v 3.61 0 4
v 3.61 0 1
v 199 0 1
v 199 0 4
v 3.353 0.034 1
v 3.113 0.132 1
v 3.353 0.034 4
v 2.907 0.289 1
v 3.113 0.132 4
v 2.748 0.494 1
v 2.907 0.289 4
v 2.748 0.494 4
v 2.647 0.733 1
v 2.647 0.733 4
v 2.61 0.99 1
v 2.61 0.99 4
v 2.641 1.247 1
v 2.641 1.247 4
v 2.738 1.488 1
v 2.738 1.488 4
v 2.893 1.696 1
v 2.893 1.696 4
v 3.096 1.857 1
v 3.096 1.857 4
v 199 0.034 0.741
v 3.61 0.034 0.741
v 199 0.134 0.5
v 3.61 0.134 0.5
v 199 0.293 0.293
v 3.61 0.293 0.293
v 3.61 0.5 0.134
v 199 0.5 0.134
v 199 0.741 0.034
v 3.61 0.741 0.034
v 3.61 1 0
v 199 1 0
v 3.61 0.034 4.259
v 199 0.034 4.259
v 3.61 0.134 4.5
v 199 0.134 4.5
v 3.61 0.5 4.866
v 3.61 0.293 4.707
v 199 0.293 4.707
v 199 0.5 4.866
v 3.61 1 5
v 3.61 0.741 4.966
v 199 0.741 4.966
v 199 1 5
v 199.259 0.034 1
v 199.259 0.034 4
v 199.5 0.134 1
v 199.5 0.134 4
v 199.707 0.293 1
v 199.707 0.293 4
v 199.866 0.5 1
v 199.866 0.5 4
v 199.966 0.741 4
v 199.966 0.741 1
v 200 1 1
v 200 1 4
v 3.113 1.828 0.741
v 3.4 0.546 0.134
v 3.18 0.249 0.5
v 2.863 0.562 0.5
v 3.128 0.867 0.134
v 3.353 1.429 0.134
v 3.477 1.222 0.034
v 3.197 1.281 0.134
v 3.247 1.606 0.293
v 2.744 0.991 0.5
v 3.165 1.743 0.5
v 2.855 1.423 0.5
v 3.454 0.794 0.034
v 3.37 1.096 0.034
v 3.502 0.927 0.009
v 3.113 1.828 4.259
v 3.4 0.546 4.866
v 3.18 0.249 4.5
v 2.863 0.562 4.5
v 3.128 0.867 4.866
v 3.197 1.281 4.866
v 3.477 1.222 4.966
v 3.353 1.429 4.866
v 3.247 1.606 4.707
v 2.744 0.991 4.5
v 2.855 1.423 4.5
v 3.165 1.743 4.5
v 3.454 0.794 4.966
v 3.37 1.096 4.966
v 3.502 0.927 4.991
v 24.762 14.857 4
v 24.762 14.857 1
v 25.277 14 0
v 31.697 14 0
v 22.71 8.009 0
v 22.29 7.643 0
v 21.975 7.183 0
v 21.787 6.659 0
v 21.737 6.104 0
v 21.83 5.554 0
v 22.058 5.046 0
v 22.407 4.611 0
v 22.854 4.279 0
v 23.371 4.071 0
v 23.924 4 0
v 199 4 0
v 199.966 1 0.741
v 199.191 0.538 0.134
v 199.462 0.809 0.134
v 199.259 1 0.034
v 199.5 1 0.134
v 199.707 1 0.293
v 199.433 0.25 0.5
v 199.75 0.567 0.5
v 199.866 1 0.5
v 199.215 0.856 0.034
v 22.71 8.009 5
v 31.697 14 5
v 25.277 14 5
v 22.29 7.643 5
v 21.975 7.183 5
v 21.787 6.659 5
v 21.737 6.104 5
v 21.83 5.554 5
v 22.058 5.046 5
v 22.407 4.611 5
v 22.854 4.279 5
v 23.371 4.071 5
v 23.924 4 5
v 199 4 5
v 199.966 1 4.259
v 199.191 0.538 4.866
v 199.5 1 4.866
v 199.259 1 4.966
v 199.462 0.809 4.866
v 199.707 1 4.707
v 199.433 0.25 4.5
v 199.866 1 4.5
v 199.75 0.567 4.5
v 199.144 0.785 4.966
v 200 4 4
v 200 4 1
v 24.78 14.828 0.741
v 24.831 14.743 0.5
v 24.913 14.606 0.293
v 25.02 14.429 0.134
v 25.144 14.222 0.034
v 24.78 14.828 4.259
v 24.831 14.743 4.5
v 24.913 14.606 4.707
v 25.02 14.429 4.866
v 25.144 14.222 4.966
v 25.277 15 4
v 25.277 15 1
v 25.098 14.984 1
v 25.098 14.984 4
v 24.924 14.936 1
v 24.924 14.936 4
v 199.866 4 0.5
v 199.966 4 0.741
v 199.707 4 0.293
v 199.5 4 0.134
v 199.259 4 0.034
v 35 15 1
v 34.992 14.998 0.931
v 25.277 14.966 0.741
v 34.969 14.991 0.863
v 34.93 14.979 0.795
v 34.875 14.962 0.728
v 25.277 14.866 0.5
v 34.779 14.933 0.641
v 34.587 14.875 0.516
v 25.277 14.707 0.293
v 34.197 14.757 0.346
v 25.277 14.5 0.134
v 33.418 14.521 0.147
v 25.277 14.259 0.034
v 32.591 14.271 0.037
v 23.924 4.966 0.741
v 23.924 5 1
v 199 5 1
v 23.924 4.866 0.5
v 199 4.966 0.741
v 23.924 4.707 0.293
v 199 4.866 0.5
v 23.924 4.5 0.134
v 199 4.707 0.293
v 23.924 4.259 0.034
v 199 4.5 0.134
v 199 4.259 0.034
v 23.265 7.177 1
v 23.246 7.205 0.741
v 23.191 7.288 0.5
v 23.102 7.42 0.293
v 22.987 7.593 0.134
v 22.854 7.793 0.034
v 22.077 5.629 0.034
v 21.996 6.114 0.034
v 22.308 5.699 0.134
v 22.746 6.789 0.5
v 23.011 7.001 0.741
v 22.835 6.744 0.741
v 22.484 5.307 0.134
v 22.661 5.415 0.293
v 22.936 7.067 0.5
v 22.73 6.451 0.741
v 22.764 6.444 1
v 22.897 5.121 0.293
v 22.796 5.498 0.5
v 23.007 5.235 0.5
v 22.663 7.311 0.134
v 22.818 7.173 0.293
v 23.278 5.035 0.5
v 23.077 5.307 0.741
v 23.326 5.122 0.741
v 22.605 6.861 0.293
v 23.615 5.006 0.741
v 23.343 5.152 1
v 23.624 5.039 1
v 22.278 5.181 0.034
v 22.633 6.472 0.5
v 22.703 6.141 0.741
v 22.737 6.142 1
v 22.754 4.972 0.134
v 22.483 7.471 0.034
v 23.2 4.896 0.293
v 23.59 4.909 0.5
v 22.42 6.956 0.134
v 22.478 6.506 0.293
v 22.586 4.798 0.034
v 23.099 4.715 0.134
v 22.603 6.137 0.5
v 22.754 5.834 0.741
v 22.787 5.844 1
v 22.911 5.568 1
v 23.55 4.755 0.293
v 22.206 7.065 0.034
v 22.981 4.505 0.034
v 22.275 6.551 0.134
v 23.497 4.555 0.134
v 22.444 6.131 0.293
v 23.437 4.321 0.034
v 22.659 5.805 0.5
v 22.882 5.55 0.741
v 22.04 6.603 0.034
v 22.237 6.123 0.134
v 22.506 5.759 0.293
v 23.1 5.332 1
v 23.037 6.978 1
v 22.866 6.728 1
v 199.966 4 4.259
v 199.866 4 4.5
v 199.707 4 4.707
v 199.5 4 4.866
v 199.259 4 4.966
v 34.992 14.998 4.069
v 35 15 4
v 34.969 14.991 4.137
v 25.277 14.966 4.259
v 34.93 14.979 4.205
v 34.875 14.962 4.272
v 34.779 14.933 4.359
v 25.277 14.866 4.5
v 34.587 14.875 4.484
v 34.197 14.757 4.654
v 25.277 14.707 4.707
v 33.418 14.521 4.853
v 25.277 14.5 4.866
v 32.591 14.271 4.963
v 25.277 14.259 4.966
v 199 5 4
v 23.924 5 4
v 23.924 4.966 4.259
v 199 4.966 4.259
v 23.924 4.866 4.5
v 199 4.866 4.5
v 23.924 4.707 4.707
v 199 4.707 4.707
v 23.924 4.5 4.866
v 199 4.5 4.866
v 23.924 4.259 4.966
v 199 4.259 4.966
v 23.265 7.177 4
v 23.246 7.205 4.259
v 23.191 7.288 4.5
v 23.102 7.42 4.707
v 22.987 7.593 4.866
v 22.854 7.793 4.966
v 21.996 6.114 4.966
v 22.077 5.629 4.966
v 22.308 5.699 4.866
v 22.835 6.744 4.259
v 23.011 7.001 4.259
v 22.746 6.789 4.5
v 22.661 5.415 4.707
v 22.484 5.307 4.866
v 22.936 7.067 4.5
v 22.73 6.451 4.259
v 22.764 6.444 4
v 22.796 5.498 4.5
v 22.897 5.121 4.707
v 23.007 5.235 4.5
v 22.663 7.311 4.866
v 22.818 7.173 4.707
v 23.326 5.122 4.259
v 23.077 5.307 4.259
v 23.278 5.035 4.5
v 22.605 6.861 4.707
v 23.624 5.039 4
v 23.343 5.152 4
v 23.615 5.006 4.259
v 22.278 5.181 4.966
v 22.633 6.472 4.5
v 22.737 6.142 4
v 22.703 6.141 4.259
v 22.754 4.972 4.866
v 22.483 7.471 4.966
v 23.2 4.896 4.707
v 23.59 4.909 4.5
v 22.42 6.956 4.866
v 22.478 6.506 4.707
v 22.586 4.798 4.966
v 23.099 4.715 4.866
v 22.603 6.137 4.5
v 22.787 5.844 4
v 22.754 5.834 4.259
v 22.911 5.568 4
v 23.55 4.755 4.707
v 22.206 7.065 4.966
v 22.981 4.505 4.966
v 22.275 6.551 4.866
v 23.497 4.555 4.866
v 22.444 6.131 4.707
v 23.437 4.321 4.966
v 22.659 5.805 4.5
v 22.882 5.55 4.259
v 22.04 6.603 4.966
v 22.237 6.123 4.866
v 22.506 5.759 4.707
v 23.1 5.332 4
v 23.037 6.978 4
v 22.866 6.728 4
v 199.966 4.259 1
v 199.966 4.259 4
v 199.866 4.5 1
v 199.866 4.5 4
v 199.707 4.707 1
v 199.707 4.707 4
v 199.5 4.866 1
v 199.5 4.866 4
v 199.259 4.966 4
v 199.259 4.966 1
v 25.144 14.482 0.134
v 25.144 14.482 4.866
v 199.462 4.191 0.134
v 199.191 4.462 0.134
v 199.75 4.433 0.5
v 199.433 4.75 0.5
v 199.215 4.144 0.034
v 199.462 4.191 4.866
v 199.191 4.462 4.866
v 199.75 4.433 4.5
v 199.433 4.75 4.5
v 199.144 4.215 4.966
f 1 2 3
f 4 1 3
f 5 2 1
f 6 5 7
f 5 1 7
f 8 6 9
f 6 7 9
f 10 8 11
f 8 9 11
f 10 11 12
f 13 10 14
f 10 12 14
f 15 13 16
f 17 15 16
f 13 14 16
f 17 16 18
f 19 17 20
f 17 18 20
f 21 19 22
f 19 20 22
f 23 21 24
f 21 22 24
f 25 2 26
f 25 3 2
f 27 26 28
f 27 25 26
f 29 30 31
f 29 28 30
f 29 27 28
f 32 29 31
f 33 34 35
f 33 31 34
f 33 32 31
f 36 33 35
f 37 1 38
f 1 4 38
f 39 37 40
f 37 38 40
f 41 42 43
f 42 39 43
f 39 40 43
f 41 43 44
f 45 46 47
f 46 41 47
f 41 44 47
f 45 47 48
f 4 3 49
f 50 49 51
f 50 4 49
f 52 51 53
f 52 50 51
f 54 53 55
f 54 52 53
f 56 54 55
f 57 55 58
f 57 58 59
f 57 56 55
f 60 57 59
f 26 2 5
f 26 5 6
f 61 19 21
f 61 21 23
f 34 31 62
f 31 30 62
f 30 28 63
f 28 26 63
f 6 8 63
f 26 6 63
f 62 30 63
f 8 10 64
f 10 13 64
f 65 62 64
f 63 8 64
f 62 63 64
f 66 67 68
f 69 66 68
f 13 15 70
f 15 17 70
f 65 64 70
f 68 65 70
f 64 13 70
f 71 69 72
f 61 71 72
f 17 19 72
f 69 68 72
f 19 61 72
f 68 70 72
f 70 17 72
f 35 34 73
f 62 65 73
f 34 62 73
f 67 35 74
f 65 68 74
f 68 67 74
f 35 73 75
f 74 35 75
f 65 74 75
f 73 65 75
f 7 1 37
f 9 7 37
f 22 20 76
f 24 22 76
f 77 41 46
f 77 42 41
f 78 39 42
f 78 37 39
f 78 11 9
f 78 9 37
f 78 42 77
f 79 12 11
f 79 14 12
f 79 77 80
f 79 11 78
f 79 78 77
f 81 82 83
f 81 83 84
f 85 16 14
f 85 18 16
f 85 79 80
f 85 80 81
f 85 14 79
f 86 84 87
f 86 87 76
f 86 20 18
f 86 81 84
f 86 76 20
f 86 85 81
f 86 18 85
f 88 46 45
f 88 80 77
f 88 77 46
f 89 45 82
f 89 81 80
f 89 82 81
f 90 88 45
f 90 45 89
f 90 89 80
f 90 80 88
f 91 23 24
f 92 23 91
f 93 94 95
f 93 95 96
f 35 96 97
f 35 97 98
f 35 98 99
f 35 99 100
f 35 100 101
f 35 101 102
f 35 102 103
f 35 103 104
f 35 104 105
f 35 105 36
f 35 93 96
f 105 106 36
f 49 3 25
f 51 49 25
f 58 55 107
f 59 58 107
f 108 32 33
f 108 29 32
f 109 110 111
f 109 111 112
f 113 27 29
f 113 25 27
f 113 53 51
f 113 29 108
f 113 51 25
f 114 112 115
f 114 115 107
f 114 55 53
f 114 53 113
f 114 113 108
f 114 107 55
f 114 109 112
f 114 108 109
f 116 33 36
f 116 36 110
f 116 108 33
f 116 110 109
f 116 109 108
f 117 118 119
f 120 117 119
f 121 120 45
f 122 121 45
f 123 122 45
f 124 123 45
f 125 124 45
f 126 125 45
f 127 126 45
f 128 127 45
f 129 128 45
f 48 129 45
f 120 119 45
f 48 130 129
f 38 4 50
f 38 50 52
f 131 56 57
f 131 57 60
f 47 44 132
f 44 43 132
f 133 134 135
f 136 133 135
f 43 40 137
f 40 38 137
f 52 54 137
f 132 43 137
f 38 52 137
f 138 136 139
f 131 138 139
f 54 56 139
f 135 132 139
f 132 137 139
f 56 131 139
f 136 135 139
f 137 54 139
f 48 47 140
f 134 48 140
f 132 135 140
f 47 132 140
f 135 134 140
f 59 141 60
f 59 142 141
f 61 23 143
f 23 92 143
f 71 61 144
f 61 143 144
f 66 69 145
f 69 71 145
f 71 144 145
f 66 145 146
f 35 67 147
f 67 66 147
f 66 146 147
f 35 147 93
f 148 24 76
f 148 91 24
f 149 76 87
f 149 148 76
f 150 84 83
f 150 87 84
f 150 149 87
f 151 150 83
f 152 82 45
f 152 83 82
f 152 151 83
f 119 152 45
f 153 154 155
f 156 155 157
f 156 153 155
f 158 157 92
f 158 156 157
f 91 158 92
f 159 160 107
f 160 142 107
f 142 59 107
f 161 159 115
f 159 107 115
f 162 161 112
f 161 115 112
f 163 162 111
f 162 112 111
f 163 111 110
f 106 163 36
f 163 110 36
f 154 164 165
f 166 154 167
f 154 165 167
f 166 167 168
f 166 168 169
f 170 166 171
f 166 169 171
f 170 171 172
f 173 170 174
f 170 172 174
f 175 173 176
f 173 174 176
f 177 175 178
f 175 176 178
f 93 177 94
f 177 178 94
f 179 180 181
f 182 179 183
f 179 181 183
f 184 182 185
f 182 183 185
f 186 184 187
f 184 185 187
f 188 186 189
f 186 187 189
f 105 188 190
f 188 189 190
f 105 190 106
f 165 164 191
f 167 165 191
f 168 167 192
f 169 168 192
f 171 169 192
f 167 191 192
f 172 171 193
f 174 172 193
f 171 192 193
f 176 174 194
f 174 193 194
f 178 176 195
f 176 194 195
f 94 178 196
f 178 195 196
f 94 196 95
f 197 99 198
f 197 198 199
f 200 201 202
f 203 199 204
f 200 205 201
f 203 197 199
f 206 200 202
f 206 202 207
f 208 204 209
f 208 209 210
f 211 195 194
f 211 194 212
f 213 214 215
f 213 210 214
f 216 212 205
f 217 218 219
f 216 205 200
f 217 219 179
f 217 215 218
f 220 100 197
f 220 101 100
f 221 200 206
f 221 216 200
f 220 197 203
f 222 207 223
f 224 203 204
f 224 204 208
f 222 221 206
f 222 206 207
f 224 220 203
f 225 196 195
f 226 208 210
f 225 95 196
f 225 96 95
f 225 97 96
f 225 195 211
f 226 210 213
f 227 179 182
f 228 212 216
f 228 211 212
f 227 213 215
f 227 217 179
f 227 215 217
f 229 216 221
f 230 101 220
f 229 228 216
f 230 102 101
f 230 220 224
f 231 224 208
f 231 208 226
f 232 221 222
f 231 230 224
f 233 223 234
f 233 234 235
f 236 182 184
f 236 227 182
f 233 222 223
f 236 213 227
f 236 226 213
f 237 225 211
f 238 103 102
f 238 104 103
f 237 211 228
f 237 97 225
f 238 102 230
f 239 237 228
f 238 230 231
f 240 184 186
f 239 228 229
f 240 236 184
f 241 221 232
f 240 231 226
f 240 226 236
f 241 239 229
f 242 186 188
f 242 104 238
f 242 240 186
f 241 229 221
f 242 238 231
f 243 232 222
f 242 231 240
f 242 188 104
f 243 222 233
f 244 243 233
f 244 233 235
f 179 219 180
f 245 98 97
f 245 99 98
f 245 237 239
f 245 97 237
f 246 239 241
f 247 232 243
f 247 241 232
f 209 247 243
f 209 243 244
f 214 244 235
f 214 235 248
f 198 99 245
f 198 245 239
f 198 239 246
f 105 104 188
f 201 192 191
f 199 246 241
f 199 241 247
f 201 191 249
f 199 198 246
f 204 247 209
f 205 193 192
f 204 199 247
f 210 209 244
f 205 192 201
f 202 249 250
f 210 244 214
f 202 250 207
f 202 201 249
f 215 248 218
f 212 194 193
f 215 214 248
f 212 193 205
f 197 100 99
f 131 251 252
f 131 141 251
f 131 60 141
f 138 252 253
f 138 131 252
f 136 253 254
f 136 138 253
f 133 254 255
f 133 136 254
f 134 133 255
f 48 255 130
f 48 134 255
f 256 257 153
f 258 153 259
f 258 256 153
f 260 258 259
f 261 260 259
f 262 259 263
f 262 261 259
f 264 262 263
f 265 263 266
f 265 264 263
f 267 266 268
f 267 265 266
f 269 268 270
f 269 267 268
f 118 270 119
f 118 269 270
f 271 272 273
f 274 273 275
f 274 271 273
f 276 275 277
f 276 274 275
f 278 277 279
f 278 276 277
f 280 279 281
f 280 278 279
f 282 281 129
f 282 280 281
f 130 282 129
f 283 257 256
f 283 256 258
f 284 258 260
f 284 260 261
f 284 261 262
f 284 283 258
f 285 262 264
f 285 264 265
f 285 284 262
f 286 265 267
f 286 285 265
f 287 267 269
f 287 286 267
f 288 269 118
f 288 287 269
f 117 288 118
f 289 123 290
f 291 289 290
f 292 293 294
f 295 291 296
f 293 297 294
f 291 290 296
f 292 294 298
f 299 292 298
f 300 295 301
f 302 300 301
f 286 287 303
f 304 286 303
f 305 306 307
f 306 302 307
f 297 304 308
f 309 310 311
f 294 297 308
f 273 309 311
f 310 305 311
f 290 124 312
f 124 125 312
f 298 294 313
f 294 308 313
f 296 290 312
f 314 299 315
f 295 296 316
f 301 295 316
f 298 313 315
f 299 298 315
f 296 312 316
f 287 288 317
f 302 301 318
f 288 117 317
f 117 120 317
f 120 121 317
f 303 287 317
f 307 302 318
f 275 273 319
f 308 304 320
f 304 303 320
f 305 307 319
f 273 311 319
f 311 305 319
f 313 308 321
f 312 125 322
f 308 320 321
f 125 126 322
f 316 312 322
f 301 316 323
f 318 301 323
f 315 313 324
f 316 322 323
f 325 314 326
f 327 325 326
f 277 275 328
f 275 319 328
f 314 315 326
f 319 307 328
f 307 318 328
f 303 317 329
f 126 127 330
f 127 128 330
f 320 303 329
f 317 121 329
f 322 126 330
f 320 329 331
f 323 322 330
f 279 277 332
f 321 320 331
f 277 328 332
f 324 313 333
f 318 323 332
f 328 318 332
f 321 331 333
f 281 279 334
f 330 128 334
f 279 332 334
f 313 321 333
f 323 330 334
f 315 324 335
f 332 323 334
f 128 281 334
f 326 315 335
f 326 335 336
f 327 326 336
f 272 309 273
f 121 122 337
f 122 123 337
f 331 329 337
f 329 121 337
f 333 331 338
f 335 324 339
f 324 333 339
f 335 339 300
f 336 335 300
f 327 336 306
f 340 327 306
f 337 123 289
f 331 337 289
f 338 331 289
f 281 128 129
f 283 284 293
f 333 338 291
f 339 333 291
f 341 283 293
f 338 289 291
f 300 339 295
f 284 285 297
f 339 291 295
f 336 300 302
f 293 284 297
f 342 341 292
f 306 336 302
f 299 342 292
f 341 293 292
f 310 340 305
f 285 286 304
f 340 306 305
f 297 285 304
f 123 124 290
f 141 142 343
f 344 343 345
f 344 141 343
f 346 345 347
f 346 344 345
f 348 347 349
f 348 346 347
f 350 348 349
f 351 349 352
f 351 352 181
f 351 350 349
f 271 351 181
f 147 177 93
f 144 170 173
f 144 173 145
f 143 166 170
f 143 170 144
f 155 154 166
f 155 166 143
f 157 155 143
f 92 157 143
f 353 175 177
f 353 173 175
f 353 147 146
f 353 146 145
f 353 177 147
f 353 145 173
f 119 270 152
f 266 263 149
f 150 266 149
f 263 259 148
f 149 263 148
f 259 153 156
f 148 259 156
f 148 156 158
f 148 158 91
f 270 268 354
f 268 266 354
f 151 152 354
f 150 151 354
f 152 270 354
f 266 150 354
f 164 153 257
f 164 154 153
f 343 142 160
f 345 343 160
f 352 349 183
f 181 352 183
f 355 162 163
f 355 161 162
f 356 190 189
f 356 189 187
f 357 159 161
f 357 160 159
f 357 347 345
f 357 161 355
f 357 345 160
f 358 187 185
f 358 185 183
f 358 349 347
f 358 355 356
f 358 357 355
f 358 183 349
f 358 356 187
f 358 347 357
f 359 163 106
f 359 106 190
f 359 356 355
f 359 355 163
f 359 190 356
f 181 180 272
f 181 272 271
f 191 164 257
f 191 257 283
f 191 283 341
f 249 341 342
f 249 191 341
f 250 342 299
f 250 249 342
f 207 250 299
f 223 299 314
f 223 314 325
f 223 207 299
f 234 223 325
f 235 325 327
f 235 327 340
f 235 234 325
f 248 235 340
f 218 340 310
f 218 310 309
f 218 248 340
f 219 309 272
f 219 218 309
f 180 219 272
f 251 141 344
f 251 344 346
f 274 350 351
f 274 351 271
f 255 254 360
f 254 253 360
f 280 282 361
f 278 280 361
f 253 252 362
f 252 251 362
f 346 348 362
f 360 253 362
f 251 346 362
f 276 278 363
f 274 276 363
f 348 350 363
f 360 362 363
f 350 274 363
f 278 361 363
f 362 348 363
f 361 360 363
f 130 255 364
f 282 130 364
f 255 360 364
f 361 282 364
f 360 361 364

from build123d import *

# Parameters (mm, degrees)
EXTRUDE_DEPTH = 5
FILLET_R      = 1


with BuildPart() as part:
    # Sketch → Extrude (new body)
    with BuildSketch(Plane.XY):
        with BuildLine():
            Line((0, 0), (200, 0))
            Line((200, 5), (200, 0))
            Line((23.923846, 5), (200, 5))
            ThreePointArc((23.264837, 7.176558), (22.786778, 5.843768), (23.923846, 5))
            Line((35, 15), (23.264837, 7.176558))
            Line((25, 15), (35, 15))
            Line((0, 0), (25, 15))
        make_face()
    extrude(amount=EXTRUDE_DEPTH)

    # Fillet
    fillet_edges = [part.edges().sort_by_distance(p)[0] for p in [
        (0, 0, 2.5),
        (200, 0, 2.5),
        (100, 0, 0),
        (100, 0, 5),
        (200, 5, 2.5),
        (200, 2.5, 0),
        (200, 2.5, 5),
        (111.961923, 5, 0),
        (111.961923, 5, 5),
        (22.786778, 5.843768, 0),
        (22.786778, 5.843768, 5),
        (29.132419, 11.088279, 0),
        (29.132419, 11.088279, 5),
        (25, 15, 2.5),
        (30, 15, 0),
        (30, 15, 5),
        (12.5, 7.5, 0),
        (12.5, 7.5, 5),
    ]]
    fillet(fillet_edges, radius=FILLET_R)


solid = part.part
